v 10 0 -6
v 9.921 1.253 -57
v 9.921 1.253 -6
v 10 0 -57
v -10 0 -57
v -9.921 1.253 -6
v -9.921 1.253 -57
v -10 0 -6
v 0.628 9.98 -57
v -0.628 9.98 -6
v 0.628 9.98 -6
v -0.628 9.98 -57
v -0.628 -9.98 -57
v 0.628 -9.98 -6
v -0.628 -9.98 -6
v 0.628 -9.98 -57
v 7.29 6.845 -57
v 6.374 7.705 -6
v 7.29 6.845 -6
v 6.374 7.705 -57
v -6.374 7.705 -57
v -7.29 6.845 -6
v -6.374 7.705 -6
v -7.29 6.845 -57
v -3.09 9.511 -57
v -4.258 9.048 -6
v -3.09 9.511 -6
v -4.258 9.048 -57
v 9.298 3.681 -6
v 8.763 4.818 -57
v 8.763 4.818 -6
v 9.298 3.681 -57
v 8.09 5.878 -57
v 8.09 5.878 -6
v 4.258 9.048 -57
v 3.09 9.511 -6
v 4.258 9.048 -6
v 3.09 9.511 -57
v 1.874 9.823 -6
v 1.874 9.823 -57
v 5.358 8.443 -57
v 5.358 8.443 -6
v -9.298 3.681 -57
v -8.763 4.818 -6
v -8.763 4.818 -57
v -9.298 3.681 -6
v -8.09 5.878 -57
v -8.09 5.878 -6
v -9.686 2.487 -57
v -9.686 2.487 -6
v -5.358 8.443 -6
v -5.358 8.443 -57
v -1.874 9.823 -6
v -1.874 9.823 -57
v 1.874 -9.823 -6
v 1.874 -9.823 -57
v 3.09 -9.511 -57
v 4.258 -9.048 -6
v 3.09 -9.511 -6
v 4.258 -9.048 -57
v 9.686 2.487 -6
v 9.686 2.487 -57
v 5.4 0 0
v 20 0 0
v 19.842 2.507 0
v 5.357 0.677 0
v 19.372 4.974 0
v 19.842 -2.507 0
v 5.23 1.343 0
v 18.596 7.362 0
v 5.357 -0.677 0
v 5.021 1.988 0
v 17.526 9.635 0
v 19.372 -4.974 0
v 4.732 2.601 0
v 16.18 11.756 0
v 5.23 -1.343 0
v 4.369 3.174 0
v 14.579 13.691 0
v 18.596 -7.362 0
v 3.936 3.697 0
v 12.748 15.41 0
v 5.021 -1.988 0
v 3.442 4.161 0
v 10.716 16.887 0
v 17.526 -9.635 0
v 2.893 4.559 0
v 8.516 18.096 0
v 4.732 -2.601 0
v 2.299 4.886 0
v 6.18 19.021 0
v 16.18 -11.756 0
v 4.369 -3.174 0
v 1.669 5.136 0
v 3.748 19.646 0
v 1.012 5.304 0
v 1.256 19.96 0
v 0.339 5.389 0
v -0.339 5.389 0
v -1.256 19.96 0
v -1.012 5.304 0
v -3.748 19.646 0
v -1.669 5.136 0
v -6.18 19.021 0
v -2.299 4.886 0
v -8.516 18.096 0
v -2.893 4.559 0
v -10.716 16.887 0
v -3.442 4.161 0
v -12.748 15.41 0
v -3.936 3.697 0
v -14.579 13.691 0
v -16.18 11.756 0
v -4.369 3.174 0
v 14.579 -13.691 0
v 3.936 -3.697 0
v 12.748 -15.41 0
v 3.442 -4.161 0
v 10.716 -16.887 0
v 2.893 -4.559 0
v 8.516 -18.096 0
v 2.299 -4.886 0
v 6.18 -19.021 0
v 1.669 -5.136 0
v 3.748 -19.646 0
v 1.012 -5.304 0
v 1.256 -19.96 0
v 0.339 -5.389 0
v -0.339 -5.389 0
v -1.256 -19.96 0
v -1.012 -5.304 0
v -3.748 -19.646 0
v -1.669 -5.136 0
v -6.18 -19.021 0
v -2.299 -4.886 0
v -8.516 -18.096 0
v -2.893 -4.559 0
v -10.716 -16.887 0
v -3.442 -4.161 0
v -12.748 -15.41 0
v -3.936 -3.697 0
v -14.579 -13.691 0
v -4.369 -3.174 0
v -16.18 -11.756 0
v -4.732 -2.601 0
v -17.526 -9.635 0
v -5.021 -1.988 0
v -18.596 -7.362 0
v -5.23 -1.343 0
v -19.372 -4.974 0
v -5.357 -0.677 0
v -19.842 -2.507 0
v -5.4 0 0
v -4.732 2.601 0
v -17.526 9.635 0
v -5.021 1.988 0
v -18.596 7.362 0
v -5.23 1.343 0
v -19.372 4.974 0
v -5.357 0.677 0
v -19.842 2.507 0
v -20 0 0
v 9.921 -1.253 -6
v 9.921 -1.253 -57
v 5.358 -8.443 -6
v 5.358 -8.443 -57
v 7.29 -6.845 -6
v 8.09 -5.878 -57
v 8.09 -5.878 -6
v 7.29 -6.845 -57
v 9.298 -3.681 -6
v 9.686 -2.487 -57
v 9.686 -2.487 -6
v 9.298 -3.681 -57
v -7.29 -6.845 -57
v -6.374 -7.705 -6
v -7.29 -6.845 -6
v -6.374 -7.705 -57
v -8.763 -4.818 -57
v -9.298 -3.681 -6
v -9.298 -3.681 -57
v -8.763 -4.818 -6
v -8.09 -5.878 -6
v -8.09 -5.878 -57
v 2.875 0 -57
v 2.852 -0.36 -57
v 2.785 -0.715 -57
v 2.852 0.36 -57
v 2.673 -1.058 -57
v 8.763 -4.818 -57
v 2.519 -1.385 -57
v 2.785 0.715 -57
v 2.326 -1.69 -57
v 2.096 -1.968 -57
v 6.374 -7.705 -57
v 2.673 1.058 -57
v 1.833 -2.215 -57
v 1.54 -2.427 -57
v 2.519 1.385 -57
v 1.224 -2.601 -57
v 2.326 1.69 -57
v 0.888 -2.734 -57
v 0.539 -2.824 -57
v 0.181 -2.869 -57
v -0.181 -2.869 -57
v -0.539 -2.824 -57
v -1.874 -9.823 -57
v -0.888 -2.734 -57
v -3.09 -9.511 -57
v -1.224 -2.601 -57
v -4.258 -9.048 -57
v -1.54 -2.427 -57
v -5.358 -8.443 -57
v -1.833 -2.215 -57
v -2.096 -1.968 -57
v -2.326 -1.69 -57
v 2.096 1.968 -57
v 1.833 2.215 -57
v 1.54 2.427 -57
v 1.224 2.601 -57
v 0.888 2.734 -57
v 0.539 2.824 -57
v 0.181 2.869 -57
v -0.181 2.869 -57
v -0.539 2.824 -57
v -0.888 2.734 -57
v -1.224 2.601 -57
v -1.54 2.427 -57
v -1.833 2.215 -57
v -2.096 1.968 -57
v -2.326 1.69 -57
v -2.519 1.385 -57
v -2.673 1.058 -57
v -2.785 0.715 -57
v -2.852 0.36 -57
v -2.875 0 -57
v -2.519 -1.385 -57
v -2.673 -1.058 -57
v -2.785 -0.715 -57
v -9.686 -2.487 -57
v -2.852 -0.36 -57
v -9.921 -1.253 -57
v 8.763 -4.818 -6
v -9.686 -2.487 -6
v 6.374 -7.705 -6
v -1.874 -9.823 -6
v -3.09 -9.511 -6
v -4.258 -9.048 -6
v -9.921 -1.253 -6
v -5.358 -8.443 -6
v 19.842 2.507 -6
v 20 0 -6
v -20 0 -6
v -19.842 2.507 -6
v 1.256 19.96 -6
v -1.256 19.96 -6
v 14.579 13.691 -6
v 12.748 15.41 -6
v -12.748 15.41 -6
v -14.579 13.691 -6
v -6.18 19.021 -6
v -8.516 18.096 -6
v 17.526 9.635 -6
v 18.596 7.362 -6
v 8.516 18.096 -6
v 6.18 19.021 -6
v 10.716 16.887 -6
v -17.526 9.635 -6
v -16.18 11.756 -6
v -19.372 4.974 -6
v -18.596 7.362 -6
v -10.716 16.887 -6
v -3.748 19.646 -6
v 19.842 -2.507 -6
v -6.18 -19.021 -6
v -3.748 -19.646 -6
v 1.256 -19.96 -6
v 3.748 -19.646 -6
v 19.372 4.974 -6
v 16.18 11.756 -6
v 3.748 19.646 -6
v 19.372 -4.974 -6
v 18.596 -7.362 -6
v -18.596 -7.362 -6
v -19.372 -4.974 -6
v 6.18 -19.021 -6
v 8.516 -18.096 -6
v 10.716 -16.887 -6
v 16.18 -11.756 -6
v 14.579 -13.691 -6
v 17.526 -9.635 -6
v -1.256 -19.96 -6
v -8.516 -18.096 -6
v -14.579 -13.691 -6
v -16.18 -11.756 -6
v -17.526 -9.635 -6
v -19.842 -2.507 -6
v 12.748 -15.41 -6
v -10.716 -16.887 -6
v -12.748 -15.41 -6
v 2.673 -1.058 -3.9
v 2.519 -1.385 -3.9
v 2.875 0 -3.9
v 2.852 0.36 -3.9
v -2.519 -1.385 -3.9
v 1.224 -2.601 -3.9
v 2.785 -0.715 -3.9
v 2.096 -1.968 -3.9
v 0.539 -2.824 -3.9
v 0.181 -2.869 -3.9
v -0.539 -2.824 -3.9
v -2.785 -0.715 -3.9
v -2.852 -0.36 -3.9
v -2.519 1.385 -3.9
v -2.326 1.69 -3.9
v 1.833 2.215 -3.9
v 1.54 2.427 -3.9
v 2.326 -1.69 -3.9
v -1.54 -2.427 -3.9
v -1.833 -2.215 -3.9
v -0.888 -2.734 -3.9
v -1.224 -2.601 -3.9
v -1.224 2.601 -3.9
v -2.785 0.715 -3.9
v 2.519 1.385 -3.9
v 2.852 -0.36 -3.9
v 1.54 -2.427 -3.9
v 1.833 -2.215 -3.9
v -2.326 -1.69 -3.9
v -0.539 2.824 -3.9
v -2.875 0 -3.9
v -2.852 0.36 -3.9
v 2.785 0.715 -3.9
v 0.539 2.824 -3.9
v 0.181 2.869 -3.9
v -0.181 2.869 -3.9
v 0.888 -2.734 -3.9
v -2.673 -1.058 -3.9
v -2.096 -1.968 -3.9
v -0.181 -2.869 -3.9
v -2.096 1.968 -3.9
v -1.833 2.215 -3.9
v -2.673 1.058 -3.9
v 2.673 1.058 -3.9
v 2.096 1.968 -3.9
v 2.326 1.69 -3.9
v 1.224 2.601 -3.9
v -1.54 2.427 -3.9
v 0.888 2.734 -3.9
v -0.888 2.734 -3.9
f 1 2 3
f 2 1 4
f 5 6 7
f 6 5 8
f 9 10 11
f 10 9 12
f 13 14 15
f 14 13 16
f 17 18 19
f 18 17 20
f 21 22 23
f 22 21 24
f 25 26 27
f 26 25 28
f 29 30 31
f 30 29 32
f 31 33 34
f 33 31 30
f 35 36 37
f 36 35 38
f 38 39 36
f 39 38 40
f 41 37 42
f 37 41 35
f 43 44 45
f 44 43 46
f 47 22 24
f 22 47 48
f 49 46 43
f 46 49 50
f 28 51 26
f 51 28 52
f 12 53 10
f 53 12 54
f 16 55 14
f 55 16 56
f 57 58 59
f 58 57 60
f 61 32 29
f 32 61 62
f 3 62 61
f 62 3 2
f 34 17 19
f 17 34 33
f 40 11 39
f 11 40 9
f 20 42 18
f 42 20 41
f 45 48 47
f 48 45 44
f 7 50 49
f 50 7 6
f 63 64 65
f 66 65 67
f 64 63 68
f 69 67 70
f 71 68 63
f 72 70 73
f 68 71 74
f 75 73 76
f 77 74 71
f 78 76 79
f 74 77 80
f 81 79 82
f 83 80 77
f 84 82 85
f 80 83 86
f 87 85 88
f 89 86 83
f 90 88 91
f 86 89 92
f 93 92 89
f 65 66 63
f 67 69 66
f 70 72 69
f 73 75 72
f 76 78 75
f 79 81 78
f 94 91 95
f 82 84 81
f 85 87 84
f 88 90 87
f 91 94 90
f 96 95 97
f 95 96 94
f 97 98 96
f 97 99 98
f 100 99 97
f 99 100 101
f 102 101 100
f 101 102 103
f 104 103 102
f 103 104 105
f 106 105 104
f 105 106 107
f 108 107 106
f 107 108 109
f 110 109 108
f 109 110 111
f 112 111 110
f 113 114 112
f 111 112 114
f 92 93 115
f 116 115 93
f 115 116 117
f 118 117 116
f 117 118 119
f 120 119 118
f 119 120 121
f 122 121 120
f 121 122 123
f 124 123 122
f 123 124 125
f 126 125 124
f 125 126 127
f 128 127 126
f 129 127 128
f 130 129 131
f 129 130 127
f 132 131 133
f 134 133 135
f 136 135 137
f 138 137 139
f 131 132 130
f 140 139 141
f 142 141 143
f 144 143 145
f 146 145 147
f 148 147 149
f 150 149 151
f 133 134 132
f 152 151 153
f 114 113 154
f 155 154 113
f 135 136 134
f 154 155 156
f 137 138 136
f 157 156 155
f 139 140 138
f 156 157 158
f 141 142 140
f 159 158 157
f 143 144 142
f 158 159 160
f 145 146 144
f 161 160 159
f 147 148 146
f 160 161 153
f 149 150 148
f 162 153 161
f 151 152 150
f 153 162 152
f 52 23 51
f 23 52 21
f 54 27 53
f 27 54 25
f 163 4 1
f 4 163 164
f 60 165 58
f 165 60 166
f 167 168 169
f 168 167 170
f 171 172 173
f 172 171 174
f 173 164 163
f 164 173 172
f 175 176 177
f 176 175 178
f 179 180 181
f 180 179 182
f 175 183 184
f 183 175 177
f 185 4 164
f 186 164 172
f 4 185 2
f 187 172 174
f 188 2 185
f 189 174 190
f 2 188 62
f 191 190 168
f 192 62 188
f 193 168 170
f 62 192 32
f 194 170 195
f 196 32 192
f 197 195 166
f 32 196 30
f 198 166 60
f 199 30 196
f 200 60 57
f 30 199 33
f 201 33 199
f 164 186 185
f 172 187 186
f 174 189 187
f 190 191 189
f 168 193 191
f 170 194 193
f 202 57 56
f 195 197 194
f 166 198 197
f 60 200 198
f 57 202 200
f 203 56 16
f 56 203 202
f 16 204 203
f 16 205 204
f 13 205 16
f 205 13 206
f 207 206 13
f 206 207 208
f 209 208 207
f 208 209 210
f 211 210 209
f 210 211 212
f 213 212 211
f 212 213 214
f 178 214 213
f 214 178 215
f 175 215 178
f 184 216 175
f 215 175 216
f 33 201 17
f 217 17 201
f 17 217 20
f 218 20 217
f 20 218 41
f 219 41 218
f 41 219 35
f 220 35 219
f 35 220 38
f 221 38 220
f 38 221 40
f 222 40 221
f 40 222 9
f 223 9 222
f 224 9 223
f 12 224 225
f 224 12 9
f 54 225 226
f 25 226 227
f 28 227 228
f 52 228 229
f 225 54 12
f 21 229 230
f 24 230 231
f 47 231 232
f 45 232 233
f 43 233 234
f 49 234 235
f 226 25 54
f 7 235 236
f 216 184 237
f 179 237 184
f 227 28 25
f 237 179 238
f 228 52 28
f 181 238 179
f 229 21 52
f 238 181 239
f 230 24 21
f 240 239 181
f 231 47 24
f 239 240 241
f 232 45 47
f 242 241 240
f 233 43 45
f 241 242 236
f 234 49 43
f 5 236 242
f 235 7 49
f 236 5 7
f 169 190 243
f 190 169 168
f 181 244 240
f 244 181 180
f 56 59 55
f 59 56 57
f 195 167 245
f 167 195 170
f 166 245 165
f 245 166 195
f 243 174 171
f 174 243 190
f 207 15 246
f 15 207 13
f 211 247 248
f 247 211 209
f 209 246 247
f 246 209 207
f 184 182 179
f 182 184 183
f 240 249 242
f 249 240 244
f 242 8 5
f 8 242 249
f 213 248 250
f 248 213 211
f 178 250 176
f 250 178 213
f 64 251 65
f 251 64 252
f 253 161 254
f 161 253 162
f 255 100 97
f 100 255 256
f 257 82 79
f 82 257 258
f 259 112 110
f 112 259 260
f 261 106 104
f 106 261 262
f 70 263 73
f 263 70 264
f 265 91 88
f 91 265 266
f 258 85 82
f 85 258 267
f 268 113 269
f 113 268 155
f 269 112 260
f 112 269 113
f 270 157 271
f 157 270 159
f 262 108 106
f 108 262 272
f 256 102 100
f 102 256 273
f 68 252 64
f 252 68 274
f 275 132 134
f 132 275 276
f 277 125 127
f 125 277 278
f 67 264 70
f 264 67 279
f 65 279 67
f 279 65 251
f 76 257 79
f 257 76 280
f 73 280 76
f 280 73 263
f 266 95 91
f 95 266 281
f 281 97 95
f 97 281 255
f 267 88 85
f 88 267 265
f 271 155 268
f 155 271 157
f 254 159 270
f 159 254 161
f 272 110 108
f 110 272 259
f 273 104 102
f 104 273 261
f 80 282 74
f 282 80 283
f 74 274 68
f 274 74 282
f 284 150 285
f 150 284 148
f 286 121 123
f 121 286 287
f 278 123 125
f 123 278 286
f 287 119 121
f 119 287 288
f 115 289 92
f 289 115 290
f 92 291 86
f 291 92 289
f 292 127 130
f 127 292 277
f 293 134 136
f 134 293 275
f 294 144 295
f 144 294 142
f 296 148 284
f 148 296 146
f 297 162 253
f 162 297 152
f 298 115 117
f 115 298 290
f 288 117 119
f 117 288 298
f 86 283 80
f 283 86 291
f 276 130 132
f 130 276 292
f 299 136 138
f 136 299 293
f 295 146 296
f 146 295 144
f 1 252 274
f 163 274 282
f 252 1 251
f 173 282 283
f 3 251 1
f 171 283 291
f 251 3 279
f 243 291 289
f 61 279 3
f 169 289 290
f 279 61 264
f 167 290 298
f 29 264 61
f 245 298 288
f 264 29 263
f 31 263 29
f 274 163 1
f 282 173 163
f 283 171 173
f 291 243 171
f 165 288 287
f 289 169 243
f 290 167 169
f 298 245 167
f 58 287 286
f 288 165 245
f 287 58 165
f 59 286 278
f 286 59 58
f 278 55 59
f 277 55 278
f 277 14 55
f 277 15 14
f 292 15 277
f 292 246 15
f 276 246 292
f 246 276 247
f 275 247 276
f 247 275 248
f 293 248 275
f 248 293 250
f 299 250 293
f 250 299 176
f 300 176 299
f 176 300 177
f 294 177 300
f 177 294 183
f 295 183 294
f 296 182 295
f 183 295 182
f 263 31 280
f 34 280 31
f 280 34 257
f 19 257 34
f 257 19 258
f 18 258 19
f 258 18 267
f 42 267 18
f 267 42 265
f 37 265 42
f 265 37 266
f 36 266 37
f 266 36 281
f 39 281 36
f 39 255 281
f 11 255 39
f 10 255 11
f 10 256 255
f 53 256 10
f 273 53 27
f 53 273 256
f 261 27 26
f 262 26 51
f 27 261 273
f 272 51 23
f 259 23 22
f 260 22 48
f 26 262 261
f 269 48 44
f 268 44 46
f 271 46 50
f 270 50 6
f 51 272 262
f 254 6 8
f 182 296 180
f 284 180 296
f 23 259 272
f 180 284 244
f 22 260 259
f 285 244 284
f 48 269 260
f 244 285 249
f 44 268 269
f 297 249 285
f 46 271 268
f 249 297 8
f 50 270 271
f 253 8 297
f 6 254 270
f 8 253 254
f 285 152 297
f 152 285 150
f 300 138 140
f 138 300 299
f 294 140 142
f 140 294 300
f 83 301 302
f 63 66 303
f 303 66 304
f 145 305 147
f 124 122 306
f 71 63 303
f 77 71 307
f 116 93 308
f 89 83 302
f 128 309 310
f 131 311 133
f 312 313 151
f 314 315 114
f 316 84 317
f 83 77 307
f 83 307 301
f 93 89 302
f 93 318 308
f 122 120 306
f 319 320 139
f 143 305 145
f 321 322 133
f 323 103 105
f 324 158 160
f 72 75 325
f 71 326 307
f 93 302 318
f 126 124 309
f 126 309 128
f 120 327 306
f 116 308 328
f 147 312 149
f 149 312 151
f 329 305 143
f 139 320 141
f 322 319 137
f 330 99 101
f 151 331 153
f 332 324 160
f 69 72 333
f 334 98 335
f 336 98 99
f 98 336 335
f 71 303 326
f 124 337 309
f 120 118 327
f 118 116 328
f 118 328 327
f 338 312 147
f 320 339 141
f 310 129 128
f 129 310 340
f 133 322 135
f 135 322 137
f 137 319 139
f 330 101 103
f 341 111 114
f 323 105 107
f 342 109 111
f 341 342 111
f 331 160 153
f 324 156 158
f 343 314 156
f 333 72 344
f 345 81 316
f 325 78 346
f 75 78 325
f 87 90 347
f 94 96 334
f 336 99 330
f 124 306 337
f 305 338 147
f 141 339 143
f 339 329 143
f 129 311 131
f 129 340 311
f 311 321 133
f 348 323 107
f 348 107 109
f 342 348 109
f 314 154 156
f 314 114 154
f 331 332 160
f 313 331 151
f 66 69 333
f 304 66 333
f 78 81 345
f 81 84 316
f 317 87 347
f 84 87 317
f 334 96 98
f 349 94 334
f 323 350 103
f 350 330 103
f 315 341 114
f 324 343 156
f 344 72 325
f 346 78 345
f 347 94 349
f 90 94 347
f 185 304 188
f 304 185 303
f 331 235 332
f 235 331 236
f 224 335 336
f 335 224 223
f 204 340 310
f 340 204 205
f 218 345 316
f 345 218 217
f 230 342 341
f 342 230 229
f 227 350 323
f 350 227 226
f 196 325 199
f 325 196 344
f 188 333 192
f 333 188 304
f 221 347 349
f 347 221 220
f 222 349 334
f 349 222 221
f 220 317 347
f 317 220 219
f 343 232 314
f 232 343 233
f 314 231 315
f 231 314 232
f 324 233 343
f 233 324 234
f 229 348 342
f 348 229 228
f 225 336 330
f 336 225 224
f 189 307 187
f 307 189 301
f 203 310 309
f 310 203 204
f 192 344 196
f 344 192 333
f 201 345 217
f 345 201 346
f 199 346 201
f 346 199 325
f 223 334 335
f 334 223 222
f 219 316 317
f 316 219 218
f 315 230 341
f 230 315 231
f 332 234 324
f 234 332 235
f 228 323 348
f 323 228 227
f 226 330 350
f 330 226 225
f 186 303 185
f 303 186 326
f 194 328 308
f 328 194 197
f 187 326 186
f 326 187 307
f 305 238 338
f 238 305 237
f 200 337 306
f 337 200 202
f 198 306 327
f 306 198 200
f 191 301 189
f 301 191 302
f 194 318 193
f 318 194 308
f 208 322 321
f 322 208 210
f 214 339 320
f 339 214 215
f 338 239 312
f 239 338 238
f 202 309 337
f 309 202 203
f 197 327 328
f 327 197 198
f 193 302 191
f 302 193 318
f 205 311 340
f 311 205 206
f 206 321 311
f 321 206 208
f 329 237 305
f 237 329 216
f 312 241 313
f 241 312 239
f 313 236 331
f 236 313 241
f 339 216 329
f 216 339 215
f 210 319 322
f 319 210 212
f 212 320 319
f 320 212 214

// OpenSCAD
$fn = 50;


difference() {
	union() {
		translate(v = [0, 0, -57.0000000000]) {
			cylinder(h = 57, r = 10.0000000000);
		}
		translate(v = [0, 0, -6.0000000000]) {
			cylinder(h = 6, r = 20.0000000000);
		}
	}
	union() {
		translate(v = [0, 0, 0]) {
			rotate(a = [0, 0, 0]) {
				difference() {
					union() {
						#translate(v = [0, 0, -57.0000000000]) {
							cylinder(h = 57, r = 2.6000000000);
						}
						#translate(v = [0, 0, -3.9000000000]) {
							cylinder(h = 3.9000000000, r = 10.0000000000, r1 = 2.8750000000, r2 = 5.4000000000);
						}
						#translate(v = [0, 0, -57.0000000000]) {
							cylinder(h = 57, r = 2.8750000000);
						}
						#translate(v = [0, 0, -57.0000000000]) {
							cylinder(h = 57, r = 2.6000000000);
						}
					}
					union();
				}
			}
		}
	}
}
